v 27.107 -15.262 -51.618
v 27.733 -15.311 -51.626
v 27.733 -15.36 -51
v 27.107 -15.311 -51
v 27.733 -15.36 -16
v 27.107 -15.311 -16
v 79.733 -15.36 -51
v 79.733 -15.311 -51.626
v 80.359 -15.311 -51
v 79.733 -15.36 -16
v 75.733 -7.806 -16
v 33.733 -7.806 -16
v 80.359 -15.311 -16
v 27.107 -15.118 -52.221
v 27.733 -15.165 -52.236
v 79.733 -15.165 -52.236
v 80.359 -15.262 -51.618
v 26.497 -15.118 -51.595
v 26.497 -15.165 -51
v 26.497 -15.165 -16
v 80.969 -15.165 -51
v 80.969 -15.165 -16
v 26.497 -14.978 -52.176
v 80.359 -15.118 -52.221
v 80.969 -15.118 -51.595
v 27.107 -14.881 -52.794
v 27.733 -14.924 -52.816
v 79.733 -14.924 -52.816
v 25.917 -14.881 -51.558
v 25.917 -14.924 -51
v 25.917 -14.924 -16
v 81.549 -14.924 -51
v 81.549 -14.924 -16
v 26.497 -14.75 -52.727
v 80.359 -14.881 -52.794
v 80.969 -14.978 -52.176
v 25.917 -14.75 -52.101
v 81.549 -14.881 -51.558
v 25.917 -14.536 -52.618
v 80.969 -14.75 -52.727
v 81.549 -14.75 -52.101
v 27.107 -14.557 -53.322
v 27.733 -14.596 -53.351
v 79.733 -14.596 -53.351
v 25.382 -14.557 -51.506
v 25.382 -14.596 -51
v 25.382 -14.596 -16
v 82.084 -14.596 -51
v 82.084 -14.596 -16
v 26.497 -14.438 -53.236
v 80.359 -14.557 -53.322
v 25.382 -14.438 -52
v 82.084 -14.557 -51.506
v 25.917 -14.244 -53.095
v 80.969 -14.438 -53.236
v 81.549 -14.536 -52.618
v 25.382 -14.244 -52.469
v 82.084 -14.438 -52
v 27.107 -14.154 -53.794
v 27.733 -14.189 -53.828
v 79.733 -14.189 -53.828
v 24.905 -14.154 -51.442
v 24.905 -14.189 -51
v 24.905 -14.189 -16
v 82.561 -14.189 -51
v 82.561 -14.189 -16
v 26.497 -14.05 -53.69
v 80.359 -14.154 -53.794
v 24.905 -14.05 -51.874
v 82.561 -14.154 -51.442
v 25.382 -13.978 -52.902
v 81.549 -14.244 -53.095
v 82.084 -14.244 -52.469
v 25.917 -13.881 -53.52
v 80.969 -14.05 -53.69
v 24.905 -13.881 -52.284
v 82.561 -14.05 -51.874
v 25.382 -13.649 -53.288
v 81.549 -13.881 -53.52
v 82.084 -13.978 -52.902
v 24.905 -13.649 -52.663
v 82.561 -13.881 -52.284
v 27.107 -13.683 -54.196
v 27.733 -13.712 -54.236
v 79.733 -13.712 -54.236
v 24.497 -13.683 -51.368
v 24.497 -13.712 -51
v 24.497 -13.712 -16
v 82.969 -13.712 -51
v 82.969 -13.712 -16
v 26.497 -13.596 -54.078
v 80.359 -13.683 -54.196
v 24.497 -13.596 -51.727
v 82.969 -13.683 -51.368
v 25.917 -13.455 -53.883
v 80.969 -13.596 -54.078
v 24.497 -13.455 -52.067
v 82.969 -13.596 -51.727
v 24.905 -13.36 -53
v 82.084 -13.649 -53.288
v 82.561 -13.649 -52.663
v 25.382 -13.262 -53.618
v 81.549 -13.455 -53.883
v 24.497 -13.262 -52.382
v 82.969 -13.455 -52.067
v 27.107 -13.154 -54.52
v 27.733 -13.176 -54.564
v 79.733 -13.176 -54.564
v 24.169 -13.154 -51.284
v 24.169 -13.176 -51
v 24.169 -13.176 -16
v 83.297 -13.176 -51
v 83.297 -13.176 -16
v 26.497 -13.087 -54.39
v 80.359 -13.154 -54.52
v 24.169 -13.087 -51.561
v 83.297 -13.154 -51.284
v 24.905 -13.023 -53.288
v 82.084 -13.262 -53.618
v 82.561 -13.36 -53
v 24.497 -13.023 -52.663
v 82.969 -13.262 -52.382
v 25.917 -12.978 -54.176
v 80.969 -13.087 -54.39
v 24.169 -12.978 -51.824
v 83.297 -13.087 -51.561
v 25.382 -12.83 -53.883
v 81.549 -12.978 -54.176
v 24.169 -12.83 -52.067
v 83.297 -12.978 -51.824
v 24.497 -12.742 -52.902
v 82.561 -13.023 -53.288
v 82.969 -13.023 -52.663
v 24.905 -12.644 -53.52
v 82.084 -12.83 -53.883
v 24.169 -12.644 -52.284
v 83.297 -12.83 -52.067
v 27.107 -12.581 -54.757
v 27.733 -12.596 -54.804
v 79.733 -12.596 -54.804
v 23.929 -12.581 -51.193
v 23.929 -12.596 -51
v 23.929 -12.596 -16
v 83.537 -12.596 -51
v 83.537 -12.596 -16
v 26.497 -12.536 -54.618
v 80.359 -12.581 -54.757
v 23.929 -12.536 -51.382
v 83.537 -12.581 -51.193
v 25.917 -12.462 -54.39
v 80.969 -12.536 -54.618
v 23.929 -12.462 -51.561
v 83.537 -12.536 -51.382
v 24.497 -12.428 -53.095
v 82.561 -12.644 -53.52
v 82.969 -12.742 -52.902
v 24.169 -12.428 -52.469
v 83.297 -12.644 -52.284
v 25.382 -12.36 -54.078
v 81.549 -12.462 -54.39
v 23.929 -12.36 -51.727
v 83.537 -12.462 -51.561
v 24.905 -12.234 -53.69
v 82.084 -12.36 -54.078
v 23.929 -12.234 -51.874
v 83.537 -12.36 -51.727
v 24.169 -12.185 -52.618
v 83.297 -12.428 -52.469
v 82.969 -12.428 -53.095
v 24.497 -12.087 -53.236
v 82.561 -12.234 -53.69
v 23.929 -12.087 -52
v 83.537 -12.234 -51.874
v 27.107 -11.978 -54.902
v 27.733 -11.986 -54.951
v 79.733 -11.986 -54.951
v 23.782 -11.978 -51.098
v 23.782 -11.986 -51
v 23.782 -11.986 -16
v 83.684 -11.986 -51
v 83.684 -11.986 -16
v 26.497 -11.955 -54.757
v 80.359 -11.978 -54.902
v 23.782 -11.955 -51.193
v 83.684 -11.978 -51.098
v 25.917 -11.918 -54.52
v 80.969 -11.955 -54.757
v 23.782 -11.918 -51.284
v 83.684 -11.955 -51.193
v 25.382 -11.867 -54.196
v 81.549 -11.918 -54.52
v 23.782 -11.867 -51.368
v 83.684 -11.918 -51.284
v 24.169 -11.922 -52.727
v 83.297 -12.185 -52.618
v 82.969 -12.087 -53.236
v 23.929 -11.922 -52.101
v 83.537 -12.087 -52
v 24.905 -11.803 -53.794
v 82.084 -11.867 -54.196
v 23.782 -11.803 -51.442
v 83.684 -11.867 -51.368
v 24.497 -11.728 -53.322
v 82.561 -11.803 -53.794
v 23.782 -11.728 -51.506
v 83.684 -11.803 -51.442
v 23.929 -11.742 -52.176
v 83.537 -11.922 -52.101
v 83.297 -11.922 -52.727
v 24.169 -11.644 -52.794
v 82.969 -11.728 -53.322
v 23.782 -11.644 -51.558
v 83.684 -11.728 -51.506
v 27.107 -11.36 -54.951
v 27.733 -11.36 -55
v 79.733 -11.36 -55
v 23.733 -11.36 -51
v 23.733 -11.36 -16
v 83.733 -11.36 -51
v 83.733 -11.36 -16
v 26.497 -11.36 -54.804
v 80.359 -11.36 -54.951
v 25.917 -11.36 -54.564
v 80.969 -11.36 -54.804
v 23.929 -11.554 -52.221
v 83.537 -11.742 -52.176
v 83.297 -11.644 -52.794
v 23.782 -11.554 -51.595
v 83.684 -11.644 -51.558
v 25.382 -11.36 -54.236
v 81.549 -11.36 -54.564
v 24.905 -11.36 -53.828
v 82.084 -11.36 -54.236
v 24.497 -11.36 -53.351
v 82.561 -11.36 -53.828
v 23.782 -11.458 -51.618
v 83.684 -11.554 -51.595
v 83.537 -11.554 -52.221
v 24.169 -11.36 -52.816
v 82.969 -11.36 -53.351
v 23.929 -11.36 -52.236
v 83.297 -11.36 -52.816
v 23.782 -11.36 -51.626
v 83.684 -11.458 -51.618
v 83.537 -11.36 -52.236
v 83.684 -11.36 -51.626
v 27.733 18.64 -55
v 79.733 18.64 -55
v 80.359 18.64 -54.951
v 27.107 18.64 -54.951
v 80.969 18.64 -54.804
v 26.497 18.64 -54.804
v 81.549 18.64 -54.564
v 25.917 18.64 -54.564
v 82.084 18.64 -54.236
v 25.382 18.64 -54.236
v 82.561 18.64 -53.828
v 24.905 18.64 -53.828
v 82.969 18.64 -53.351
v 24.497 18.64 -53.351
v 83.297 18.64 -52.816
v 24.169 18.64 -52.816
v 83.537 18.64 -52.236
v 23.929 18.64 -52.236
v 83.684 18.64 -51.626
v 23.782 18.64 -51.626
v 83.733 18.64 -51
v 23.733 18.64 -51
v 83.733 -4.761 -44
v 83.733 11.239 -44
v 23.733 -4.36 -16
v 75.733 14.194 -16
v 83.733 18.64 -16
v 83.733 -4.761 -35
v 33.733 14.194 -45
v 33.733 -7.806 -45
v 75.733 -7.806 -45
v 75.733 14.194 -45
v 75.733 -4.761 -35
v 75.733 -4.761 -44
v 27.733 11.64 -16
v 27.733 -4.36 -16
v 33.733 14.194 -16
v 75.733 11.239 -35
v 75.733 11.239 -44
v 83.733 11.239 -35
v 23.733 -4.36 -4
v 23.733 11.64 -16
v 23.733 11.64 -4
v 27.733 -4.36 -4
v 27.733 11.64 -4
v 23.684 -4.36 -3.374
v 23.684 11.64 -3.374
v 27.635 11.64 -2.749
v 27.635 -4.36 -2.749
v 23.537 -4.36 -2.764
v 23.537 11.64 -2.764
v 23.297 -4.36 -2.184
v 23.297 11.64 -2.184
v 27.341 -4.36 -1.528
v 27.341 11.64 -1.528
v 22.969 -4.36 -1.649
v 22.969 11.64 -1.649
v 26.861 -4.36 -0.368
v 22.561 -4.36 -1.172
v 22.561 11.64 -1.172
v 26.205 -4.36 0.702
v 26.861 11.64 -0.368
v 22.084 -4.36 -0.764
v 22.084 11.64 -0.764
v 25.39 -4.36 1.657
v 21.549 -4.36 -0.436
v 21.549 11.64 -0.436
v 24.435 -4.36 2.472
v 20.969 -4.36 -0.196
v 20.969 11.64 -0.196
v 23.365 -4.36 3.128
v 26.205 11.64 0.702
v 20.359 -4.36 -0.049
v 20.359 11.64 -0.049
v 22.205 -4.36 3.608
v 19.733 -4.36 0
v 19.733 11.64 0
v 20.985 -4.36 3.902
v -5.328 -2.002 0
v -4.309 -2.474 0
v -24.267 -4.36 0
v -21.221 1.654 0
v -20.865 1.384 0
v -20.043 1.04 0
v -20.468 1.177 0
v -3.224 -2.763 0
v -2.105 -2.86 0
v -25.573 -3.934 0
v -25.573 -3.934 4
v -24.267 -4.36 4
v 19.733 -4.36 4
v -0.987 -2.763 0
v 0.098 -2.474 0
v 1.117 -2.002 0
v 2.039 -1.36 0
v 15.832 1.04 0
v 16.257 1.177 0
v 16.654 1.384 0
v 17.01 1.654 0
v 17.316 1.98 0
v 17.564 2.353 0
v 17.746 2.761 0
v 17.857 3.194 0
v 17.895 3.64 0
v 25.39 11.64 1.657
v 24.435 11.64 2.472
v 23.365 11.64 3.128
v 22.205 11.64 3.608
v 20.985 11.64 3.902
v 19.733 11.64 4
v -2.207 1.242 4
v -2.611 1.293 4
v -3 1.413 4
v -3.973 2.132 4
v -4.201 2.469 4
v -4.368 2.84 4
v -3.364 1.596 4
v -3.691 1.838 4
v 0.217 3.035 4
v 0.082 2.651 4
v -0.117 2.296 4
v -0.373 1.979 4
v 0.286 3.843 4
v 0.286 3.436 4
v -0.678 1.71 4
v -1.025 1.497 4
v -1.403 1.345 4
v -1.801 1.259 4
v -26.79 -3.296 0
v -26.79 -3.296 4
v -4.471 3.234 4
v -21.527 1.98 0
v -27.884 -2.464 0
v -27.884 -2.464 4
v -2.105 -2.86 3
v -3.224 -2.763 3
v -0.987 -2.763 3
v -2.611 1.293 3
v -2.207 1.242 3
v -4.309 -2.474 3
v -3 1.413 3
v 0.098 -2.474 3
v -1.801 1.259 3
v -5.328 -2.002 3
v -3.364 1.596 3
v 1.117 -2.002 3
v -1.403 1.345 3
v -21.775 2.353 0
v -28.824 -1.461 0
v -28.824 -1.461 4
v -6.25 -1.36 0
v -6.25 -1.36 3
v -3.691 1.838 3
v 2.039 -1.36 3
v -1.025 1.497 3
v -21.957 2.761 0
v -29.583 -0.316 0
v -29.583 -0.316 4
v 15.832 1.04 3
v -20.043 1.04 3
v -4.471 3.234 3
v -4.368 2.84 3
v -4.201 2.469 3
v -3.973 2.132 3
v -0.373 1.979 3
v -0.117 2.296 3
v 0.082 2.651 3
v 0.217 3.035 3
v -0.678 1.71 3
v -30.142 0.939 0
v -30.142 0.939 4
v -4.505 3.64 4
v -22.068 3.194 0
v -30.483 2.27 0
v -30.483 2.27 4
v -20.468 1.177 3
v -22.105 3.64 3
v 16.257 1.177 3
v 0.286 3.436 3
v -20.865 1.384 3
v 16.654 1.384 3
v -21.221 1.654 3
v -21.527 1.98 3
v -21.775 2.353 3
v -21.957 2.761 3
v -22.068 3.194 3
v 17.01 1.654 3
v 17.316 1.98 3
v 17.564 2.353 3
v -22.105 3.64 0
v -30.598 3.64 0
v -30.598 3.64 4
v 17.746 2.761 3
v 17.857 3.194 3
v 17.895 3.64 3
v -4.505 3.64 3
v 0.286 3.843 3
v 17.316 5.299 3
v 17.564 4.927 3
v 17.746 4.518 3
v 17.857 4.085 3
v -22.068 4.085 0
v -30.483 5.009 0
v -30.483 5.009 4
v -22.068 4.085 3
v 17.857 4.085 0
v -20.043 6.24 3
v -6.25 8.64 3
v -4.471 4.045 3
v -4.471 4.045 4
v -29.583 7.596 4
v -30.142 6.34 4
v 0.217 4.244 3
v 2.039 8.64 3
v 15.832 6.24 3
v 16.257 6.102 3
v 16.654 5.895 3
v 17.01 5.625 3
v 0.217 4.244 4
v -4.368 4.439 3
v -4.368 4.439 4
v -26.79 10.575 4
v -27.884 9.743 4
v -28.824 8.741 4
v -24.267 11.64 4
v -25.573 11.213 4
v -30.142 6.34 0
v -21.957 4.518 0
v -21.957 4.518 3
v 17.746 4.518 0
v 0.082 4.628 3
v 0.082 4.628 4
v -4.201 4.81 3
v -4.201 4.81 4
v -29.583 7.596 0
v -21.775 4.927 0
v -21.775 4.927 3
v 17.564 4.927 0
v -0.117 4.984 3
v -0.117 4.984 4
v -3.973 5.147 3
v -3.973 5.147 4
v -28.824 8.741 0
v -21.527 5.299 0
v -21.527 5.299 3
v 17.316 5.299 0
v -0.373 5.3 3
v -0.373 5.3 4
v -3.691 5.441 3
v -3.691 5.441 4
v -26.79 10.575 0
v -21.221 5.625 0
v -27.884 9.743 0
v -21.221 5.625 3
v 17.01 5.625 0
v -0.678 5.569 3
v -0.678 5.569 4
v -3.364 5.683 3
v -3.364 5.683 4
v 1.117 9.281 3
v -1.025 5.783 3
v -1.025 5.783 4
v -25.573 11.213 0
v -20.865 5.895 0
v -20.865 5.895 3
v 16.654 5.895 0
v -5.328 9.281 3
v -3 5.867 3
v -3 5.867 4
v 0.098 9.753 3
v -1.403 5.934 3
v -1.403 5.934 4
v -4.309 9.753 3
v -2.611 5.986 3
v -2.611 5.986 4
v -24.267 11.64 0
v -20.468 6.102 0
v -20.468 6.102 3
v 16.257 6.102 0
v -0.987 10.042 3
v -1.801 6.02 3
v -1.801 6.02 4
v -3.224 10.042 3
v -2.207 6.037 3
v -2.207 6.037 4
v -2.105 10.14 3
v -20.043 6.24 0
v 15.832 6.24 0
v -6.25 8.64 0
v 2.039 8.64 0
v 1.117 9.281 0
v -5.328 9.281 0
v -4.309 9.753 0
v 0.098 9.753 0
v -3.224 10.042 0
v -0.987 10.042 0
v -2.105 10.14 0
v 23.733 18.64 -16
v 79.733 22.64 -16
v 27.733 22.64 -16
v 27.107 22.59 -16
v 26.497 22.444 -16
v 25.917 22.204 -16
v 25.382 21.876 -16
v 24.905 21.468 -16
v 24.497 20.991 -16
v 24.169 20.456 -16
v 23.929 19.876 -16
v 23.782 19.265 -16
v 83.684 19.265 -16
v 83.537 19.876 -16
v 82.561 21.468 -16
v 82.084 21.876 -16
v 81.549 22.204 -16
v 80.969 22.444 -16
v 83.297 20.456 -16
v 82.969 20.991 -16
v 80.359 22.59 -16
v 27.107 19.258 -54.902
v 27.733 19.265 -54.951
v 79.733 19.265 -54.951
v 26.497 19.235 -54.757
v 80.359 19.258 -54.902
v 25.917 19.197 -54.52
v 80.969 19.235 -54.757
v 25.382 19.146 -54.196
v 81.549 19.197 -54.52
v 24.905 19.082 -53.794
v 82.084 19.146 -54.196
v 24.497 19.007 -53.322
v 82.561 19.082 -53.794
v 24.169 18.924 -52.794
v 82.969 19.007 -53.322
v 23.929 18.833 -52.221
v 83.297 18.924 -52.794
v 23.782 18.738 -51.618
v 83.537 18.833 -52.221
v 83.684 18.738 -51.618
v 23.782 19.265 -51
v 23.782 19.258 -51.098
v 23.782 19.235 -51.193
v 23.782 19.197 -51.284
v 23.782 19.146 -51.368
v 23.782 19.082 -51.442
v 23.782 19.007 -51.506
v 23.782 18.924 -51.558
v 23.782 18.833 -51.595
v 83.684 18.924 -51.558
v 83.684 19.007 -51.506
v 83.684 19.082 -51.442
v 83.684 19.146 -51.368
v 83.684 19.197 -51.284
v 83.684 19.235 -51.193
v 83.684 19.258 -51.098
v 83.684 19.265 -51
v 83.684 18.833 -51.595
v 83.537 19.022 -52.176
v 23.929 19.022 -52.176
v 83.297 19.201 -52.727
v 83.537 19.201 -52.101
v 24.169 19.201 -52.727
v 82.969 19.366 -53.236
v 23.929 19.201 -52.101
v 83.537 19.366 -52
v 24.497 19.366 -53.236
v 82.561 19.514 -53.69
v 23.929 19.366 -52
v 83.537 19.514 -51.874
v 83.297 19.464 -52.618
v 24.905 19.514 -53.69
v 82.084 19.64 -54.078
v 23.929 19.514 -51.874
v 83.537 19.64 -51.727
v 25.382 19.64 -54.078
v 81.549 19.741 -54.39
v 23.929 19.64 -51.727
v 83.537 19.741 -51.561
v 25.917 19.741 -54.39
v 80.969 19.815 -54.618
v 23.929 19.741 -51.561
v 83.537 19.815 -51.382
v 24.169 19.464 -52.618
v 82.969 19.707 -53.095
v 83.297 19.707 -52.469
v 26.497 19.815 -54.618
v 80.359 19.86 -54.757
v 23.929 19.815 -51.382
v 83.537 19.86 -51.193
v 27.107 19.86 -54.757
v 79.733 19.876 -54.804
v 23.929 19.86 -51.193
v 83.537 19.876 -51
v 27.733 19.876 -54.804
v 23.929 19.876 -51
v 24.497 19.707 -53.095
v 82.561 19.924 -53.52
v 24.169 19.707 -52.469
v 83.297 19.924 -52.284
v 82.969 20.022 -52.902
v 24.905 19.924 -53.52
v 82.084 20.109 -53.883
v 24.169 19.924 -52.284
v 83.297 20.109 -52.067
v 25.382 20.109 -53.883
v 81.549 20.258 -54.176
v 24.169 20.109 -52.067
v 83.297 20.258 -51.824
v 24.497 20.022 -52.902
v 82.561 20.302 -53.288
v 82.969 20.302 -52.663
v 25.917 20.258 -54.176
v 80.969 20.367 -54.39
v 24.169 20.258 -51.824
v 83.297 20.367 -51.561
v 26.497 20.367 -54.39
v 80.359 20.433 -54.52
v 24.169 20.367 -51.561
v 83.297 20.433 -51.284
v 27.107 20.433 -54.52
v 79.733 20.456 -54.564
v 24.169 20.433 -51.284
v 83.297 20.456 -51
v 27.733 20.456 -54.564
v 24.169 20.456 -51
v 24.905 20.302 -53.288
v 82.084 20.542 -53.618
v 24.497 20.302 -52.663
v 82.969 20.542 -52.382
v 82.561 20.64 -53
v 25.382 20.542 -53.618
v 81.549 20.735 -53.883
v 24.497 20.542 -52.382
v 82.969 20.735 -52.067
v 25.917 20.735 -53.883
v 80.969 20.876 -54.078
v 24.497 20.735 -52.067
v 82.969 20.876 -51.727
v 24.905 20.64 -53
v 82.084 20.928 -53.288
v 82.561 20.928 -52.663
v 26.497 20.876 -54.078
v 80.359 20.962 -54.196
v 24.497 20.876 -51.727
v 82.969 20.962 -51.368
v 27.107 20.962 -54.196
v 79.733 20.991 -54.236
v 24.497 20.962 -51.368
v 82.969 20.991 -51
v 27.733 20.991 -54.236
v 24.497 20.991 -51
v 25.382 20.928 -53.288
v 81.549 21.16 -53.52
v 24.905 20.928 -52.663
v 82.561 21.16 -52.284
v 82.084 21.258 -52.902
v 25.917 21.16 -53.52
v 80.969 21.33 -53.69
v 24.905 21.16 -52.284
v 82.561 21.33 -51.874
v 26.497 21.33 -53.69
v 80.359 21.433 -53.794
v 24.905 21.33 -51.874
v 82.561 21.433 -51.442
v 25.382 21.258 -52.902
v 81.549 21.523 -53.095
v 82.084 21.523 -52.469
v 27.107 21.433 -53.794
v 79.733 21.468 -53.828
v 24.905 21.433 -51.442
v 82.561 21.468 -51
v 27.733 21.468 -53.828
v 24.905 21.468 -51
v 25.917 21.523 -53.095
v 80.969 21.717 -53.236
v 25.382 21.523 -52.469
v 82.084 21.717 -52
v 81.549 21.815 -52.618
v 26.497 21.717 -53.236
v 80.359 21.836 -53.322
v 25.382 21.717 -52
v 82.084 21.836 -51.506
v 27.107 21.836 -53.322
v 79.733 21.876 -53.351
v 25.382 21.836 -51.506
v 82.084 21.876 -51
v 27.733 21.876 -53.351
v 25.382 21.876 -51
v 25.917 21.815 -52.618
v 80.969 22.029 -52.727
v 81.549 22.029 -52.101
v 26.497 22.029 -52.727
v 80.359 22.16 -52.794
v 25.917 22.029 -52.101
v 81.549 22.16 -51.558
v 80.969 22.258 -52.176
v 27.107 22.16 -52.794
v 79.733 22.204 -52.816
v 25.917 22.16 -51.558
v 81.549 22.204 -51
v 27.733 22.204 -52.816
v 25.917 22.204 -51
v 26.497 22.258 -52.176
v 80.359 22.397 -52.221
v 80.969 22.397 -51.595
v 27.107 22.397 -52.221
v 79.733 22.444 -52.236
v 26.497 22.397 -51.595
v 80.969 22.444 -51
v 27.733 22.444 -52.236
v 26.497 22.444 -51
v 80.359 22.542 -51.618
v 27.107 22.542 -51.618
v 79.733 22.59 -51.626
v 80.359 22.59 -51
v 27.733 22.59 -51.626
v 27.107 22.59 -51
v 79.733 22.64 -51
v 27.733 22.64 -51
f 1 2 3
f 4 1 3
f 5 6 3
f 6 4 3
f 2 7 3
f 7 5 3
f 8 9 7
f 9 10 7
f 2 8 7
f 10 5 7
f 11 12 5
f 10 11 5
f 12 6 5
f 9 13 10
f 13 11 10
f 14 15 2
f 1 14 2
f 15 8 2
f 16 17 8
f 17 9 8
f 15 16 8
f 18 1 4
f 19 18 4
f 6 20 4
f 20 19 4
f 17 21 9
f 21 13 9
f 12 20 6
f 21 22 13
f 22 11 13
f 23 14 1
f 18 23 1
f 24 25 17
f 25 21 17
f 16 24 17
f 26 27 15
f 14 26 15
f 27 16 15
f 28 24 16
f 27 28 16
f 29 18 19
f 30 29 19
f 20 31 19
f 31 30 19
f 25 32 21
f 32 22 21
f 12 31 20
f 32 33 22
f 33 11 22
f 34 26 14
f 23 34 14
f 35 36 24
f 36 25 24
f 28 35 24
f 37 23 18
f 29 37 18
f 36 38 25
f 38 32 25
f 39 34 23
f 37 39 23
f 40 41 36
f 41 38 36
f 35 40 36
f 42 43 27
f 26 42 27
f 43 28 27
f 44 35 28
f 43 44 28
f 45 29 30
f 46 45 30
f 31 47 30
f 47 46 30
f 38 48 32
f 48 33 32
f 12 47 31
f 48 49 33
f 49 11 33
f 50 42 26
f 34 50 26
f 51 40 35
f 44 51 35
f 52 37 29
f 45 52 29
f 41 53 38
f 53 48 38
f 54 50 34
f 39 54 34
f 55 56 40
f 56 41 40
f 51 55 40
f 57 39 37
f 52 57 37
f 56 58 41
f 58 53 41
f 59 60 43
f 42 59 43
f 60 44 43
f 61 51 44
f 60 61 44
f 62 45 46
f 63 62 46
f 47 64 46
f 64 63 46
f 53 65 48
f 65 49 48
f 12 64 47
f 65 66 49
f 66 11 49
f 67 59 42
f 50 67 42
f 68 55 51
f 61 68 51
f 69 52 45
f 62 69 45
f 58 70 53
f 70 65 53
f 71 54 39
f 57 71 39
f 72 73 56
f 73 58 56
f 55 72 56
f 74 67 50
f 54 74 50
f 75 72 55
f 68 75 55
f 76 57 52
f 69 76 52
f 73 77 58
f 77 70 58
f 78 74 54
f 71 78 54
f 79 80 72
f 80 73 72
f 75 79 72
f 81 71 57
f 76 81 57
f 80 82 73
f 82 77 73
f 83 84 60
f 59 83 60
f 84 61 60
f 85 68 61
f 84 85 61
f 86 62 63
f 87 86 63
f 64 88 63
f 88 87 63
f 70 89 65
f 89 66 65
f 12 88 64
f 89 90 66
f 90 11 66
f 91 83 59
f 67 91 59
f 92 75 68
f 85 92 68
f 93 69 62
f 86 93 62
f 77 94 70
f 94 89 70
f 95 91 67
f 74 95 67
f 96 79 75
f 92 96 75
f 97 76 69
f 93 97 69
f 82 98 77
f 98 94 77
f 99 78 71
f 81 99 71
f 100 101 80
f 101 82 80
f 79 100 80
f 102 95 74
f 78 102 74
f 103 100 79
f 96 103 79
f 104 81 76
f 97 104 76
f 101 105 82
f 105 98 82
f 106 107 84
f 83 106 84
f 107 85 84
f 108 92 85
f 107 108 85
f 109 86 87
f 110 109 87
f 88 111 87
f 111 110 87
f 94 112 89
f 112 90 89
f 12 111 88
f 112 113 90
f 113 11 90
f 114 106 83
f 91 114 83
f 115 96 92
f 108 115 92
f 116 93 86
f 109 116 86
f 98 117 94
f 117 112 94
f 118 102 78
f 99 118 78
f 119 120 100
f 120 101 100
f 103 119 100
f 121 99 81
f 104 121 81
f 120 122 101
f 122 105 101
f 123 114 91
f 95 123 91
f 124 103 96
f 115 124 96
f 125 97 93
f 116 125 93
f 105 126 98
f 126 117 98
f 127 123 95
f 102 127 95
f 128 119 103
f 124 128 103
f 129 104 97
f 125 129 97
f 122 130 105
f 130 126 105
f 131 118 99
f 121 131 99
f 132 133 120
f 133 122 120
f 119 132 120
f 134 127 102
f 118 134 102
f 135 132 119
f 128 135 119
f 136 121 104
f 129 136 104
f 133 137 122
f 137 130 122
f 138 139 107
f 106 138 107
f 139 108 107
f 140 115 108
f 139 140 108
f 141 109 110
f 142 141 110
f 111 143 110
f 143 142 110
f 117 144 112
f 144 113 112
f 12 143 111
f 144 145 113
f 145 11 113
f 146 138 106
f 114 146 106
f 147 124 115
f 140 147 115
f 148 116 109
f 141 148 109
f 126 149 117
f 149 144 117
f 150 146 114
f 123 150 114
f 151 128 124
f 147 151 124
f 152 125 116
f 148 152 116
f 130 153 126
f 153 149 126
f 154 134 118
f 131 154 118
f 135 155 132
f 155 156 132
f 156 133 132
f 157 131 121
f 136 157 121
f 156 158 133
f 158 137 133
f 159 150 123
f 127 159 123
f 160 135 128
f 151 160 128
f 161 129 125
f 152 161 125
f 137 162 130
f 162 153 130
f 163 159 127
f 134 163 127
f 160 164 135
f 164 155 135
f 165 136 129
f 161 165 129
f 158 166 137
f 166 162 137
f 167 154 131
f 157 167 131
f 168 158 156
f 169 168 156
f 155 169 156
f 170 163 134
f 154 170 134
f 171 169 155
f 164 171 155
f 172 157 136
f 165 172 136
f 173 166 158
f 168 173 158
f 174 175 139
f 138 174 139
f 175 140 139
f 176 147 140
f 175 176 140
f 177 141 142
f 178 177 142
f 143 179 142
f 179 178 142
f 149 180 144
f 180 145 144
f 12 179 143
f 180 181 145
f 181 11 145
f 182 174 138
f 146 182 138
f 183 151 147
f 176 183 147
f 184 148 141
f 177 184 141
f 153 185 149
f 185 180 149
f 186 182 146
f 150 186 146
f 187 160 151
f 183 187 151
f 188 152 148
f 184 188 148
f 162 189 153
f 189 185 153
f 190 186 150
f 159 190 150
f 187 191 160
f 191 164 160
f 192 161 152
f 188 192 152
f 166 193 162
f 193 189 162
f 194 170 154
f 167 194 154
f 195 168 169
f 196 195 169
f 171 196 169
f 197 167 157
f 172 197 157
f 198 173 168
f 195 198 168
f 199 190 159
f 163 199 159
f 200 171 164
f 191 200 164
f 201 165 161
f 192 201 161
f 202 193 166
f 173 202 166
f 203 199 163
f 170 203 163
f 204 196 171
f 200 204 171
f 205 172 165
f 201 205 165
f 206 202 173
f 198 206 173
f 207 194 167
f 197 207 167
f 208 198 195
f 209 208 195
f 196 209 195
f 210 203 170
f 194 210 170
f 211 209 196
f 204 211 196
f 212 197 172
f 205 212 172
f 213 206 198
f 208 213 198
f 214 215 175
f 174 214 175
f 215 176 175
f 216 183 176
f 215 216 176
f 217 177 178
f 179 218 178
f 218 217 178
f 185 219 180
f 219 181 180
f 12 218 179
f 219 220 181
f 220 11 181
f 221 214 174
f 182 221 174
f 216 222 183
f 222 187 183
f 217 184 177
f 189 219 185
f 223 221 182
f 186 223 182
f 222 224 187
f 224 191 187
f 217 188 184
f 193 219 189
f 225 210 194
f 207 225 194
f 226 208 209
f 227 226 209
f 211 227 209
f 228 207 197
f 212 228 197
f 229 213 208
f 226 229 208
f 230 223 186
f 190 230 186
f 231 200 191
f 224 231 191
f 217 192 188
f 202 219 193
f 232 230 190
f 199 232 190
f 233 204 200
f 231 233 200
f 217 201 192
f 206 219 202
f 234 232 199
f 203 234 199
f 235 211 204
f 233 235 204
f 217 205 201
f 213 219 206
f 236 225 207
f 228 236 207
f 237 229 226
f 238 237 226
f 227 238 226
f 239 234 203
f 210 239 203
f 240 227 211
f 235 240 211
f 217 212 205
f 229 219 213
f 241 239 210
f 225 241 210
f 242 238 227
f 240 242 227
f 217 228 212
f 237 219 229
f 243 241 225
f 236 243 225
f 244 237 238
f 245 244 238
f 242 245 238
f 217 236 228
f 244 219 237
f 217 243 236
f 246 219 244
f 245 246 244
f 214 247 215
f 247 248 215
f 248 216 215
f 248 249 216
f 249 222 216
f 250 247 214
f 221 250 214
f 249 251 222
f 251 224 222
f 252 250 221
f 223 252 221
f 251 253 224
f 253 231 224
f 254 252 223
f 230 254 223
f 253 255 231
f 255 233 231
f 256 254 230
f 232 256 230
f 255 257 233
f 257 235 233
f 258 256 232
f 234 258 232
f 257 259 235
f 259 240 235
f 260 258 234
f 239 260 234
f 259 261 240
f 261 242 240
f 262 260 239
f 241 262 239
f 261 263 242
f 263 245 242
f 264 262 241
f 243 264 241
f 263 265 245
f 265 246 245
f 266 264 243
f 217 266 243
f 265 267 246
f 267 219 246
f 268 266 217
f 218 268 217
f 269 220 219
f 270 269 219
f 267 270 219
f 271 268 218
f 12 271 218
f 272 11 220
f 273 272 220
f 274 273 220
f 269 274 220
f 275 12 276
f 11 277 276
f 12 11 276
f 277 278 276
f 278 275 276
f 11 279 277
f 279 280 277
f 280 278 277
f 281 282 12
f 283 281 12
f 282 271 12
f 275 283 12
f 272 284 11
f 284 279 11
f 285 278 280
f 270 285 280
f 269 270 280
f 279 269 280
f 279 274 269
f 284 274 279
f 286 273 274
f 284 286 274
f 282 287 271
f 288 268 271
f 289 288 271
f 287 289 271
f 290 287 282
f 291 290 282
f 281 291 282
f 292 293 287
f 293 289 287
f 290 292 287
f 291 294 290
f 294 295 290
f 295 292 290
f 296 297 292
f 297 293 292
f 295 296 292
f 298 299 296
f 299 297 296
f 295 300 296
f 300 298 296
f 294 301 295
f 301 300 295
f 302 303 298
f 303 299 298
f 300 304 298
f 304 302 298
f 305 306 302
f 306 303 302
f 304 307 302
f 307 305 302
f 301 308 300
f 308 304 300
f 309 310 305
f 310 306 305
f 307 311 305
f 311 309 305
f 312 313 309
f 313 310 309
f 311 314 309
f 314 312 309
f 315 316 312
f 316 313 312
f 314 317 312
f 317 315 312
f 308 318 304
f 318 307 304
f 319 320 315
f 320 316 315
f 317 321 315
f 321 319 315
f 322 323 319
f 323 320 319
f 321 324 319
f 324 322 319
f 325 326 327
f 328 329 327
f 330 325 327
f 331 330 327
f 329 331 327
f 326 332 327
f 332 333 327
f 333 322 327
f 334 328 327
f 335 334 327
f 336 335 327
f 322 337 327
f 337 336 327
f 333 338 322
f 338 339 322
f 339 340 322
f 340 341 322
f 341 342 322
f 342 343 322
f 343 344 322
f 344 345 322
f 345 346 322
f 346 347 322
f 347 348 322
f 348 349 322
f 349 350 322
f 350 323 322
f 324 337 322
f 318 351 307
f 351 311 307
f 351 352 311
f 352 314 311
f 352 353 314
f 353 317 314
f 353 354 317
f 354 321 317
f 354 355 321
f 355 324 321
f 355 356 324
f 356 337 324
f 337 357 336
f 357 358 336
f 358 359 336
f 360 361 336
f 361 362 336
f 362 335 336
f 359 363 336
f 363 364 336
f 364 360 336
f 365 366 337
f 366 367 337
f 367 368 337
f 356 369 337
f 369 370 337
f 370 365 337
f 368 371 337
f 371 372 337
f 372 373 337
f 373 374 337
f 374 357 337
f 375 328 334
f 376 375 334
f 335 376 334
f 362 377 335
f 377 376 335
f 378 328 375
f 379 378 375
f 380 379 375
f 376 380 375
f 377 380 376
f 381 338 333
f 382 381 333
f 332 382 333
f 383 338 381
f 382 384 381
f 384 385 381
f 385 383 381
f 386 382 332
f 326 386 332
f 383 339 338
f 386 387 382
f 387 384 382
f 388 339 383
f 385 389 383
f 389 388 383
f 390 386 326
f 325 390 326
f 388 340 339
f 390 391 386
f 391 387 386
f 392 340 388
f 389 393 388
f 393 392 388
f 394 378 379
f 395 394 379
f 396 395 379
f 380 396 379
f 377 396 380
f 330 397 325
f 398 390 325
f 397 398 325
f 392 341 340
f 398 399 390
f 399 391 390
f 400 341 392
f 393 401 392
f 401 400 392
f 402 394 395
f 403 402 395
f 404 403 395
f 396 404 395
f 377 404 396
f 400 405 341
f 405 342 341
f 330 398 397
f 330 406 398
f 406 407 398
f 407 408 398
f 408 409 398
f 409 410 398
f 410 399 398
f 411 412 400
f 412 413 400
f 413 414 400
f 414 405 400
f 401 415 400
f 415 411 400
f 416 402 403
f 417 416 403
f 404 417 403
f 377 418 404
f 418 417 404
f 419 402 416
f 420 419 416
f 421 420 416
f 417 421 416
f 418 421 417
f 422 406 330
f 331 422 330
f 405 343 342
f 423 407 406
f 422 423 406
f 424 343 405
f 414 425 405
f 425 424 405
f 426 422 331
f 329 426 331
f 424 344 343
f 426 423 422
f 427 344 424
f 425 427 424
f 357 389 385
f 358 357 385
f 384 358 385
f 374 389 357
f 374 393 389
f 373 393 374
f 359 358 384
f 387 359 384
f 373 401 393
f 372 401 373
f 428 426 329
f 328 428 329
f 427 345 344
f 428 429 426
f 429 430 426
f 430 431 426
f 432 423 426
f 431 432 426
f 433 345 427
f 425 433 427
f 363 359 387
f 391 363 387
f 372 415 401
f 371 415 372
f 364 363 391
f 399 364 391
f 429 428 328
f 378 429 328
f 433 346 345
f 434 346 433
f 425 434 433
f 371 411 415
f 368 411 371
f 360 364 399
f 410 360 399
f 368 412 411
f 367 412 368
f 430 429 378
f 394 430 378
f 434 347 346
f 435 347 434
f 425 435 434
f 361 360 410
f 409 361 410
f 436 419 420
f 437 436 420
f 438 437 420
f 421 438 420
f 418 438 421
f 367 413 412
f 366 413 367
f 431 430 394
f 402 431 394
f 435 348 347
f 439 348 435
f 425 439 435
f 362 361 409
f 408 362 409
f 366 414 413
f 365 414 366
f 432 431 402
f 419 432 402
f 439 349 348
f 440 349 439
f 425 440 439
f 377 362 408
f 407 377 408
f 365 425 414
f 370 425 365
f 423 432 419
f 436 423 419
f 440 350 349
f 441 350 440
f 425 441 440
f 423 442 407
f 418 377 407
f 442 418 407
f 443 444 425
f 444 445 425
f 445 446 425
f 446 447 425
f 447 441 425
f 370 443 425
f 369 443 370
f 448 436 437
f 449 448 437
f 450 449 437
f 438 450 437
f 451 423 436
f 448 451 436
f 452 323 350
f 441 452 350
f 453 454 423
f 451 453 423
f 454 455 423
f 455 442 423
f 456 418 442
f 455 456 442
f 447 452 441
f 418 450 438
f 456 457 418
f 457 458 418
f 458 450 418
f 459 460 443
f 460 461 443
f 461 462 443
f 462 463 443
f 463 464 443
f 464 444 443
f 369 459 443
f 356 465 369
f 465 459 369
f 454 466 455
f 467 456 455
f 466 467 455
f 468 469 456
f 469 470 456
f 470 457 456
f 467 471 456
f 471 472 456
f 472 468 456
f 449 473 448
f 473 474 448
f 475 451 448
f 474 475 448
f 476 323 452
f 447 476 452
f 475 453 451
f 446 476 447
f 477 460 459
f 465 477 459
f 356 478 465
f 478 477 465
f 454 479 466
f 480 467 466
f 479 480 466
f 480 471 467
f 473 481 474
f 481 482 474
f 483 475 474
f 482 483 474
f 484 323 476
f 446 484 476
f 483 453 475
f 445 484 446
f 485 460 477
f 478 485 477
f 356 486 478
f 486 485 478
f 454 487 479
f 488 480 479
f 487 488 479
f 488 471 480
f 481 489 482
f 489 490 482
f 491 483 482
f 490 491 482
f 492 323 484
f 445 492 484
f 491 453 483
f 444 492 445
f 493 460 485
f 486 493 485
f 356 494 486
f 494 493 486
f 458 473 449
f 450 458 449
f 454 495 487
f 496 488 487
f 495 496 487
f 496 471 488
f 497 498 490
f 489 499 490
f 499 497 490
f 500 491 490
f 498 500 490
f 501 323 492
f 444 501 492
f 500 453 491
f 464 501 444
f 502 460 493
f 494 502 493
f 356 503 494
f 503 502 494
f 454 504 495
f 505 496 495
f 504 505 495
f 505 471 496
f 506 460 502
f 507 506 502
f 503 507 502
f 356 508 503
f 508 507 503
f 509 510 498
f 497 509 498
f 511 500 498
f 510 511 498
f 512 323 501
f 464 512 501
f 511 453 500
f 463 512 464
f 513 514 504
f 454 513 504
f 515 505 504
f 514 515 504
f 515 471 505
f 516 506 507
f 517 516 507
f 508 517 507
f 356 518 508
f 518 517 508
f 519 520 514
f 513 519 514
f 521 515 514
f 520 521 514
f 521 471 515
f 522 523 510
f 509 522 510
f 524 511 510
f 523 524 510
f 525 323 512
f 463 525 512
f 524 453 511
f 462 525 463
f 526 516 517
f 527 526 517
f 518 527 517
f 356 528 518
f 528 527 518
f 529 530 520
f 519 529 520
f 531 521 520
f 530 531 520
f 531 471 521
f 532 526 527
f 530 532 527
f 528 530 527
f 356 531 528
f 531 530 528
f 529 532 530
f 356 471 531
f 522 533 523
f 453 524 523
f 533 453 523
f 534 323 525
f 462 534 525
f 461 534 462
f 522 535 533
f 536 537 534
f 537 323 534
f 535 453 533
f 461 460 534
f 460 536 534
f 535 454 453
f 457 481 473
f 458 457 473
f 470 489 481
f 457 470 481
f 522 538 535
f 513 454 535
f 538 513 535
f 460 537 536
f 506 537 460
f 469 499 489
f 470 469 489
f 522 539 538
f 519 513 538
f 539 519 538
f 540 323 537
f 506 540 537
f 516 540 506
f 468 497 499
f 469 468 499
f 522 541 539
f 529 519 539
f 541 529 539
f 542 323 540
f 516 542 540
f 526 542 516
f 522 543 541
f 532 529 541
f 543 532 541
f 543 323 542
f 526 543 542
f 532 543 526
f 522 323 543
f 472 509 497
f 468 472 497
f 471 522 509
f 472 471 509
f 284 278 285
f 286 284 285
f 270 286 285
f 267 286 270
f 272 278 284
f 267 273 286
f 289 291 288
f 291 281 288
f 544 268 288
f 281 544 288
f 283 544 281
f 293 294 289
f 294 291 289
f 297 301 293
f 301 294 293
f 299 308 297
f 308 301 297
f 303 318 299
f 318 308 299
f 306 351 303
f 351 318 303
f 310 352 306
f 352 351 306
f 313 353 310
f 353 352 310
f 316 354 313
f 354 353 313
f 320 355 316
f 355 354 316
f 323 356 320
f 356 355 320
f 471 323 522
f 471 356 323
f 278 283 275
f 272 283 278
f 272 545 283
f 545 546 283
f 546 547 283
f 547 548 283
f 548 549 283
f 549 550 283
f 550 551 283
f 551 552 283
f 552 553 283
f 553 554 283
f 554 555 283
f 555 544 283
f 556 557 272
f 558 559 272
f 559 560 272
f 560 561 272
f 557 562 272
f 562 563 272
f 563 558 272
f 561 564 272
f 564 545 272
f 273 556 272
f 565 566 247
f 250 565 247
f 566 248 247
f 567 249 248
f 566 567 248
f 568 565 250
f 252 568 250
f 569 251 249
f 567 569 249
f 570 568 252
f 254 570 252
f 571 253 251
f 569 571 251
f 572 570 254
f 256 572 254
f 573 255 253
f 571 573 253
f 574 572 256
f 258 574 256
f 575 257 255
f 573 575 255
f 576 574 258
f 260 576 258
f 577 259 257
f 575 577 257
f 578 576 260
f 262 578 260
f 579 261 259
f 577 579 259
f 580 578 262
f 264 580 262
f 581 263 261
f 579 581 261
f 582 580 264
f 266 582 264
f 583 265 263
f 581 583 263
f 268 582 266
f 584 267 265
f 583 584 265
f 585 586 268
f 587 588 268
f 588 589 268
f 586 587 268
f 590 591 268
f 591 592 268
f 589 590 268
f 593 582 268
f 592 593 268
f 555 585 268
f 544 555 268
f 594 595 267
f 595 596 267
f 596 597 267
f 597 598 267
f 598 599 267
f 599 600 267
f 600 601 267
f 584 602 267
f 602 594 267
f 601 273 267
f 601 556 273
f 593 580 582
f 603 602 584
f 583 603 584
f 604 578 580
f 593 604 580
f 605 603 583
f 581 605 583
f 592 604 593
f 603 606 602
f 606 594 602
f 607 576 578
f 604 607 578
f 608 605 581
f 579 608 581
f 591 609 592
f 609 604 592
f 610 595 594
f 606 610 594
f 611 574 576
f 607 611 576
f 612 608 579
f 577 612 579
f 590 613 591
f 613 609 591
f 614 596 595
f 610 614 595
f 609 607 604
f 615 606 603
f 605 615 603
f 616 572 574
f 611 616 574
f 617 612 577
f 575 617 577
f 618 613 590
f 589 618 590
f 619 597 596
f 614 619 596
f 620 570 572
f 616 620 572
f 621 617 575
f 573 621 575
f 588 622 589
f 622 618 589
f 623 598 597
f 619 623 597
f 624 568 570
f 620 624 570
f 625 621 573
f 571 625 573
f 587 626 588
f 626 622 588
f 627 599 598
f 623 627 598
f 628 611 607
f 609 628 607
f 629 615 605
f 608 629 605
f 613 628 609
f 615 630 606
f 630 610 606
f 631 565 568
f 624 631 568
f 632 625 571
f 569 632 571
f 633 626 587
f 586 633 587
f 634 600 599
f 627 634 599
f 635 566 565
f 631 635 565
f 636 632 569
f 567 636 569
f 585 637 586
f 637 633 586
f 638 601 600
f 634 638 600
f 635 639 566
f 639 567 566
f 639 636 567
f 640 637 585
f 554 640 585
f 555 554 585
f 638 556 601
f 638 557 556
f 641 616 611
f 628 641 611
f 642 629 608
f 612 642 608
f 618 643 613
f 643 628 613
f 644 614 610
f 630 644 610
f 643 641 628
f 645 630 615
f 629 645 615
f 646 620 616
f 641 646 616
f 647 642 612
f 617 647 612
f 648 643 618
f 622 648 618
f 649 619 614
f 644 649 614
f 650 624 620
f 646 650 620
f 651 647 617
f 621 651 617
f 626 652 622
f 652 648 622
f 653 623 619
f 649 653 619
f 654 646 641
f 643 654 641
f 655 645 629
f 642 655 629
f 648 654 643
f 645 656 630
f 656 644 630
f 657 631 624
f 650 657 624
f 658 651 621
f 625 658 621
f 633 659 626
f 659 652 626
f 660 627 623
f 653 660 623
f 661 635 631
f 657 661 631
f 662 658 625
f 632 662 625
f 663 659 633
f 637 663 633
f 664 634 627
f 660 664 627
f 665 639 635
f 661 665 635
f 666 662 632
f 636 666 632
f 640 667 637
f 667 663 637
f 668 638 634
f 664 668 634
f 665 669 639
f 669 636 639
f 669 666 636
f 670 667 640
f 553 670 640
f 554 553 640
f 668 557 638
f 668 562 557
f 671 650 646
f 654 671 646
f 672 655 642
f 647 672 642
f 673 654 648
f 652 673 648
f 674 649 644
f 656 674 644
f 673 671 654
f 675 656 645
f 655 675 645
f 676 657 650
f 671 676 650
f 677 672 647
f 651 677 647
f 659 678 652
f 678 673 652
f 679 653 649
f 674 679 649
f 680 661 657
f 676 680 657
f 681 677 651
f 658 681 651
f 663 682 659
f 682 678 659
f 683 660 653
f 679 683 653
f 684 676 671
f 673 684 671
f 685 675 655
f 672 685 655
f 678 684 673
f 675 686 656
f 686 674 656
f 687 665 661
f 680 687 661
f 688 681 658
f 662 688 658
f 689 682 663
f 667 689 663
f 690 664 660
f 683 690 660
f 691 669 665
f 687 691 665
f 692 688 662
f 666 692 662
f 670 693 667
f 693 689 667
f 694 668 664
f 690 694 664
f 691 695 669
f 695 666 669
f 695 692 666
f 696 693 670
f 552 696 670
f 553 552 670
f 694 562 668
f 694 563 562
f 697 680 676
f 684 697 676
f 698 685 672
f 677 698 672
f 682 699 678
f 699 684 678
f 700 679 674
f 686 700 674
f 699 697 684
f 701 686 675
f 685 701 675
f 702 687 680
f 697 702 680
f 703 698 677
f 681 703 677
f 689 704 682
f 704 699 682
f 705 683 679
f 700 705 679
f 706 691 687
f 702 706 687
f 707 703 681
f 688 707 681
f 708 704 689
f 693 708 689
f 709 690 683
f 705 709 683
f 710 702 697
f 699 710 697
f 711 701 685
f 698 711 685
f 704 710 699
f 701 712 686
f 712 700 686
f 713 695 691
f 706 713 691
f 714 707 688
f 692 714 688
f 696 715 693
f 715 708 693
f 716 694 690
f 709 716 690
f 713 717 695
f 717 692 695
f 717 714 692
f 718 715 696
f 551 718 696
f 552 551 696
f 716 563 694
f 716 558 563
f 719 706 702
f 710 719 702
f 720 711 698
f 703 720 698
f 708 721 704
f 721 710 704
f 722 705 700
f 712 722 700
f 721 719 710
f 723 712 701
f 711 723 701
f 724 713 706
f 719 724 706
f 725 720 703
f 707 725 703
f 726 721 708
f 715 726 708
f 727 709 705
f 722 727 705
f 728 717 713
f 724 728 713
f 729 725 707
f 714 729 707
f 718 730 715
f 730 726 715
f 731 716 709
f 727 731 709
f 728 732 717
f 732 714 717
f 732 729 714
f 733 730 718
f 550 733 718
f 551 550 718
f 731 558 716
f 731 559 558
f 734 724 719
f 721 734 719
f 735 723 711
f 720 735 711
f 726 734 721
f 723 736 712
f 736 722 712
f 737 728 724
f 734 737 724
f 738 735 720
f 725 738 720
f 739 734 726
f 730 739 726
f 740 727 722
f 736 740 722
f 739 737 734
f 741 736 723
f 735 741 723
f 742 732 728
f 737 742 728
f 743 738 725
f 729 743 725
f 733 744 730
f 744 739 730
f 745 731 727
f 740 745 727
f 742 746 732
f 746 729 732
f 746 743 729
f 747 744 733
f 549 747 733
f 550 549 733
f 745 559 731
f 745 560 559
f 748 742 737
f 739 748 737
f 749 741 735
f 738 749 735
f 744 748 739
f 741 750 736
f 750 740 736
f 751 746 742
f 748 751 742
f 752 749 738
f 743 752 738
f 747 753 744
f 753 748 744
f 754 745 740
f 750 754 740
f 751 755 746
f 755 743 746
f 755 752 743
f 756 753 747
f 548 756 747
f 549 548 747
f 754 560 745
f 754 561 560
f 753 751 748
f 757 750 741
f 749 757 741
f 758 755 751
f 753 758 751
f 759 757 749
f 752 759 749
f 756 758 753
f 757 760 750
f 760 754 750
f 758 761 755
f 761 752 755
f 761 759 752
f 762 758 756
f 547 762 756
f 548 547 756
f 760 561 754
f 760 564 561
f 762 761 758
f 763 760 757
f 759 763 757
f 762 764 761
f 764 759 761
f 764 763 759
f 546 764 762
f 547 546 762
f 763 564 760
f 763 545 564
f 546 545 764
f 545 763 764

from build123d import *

# Parameters (mm, degrees)
BOSS_EXTRUDE1_DEPTH  = 4
CUT_EXTRUDE1_DEPTH   = 3
SKETCH5_W            = 51
SKETCH5_H            = 16
BOSS_EXTRUDE2_DEPTH  = 4
BOSS_EXTRUDE15_DEPTH = 31
SKETCH20_R           = 2.4
CUT_EXTRUDE26_DEPTH  = 1
FILLET8_R            = 4
FILLET12_R           = 8
CUT_EXTRUDE_8_DEPTH  = 29
SKETCH_8_W           = 9
SKETCH_8_H           = 16
CUT_EXTRUDE_10_DEPTH = 8
SKETCH_10_W          = 60
SKETCH_10_H          = 38
EXTRUDE_2_DEPTH      = 8
FILLET_3_R           = 4
FILLET_4_R           = 4
FILLET_5_R           = 4
FILLET_6_R           = 4


with BuildPart() as part:
    # Sketch2 → Boss-Extrude1 (new body)
    with BuildSketch(Plane.XY):
        with BuildLine():
            Line((23.733047461, 11.63962887), (23.733047461, -4.36037113))
            Line((23.733047461, -4.36037113), (-24.266952539, -4.36037113))
            ThreePointArc((-24.266952539, -4.36037113), (-30.597931628, 3.63962887), (-24.266952539, 11.63962887))
            Line((-24.266952539, 11.63962887), (23.733047461, 11.63962887))
        make_face()
    extrude(amount=BOSS_EXTRUDE1_DEPTH)

    # Sketch1 → Cut-Extrude1 (cut)
    with BuildSketch(Plane.XY):
        with BuildLine():
            Line((-6.25004119, 8.63962887), (-20.04279291, 6.23962887))
            ThreePointArc((-20.04279291, 6.23962887), (-22.105421524, 3.63962887), (-20.04279291, 1.03962887))
            Line((-20.04279291, 1.03962887), (-6.25004119, -1.36037113))
            ThreePointArc((-6.25004119, -1.36037113), (-2.105421524, -2.86037113), (2.039198142, -1.36037113))
            Line((2.039198142, -1.36037113), (15.831949862, 1.03962887))
            ThreePointArc((15.831949862, 1.03962887), (17.894578476, 3.63962887), (15.831949862, 6.23962887))
            Line((15.831949862, 6.23962887), (2.039198142, 8.63962887))
            ThreePointArc((2.039198142, 8.63962887), (-2.105421524, 10.13962887), (-6.25004119, 8.63962887))
        make_face()
    extrude(amount=CUT_EXTRUDE1_DEPTH, mode=Mode.SUBTRACT)

    # Sketch5 → Boss-Extrude2 (add)
    with BuildSketch(Plane(origin=(23.733047461, 0, 0), x_dir=(0, 0, -1), z_dir=(1, 0, 0))):
        with Locations((21.5, 3.63962887)):
            Rectangle(SKETCH5_W, SKETCH5_H)
    extrude(amount=BOSS_EXTRUDE2_DEPTH)

    # Sketch6 → Boss-Extrude15 (add)
    with BuildSketch(Plane(origin=(0, 0, -47), x_dir=(-1, 0, 0), z_dir=(0, 0, -1))):
        Polygon((-30.946192459, -15.36037113), (-83.733047461, -15.36037113), (-83.733047461, 22.63962887), (-23.733047461, 22.63962887), (-23.733047461, -15.36037113), align=None)
    extrude(amount=-BOSS_EXTRUDE15_DEPTH)

    # Sketch20 → Cut-Extrude26 (cut)
    with BuildSketch(Plane(origin=(0, 0, 3), x_dir=(-1, 0, 0), z_dir=(0, 0, -1))):
        with Locations((2.105421524, 3.63962887)):
            Circle(SKETCH20_R)
    extrude(amount=-CUT_EXTRUDE26_DEPTH, mode=Mode.SUBTRACT)

    # Fillet8
    fillet8_edges = [part.edges().sort_by_distance(p)[0] for p in [
        (23.733047461, 3.63962887, 0),
    ]]
    fillet(fillet8_edges, radius=FILLET8_R)

    # Fillet12
    fillet12_edges = [part.edges().sort_by_distance(p)[0] for p in [
        (27.733047461, 3.63962887, 4),
    ]]
    fillet(fillet12_edges, radius=FILLET12_R)

    # 草圖5 → 除料-伸長8 (cut)
    with BuildSketch(Plane.XY.offset(-16)):
        Polygon((75.733047461, -7.806095257), (75.733047461, 14.193904743), (33.733047461, 14.193904743), (33.733047461, 3.193904743), (33.733047461, -7.806095257), align=None)
    extrude(amount=-CUT_EXTRUDE_8_DEPTH, mode=Mode.SUBTRACT)

    # 草圖8 → 除料-伸長10 (cut)
    with BuildSketch(Plane(origin=(83.733047461, 0, 0), x_dir=(0, 0, -1), z_dir=(1, 0, 0))):
        with Locations((39.5, 3.238584995)):
            Rectangle(SKETCH_8_W, SKETCH_8_H)
    extrude(amount=-CUT_EXTRUDE_10_DEPTH, mode=Mode.SUBTRACT)

    # 草圖10 → 填料-伸長2 (add)
    with BuildSketch(Plane(origin=(0, 0, -47), x_dir=(-1, 0, 0), z_dir=(0, 0, -1))):
        with Locations((-53.733047461, 3.63962887)):
            Rectangle(SKETCH_10_W, SKETCH_10_H)
    extrude(amount=EXTRUDE_2_DEPTH)

    # 圓角3
    fillet_3_edges = [part.edges().sort_by_distance(p)[0] for p in [
        (53.733047461, 22.63962887, -55),
    ]]
    fillet(fillet_3_edges, radius=FILLET_3_R)

    # 圓角4
    fillet_4_edges = [part.edges().sort_by_distance(p)[0] for p in [
        (53.733047461, -15.36037113, -55),
    ]]
    fillet(fillet_4_edges, radius=FILLET_4_R)

    # 圓角5
    fillet_5_edges = [part.edges().sort_by_distance(p)[0] for p in [
        (83.733047461, 22.63962887, -33.5),
    ]]
    fillet(fillet_5_edges, radius=FILLET_5_R)

    # 圓角6
    fillet_6_edges = [part.edges().sort_by_distance(p)[0] for p in [
        (23.733047461, -15.36037113, -33.5),
    ]]
    fillet(fillet_6_edges, radius=FILLET_6_R)


solid = part.part
